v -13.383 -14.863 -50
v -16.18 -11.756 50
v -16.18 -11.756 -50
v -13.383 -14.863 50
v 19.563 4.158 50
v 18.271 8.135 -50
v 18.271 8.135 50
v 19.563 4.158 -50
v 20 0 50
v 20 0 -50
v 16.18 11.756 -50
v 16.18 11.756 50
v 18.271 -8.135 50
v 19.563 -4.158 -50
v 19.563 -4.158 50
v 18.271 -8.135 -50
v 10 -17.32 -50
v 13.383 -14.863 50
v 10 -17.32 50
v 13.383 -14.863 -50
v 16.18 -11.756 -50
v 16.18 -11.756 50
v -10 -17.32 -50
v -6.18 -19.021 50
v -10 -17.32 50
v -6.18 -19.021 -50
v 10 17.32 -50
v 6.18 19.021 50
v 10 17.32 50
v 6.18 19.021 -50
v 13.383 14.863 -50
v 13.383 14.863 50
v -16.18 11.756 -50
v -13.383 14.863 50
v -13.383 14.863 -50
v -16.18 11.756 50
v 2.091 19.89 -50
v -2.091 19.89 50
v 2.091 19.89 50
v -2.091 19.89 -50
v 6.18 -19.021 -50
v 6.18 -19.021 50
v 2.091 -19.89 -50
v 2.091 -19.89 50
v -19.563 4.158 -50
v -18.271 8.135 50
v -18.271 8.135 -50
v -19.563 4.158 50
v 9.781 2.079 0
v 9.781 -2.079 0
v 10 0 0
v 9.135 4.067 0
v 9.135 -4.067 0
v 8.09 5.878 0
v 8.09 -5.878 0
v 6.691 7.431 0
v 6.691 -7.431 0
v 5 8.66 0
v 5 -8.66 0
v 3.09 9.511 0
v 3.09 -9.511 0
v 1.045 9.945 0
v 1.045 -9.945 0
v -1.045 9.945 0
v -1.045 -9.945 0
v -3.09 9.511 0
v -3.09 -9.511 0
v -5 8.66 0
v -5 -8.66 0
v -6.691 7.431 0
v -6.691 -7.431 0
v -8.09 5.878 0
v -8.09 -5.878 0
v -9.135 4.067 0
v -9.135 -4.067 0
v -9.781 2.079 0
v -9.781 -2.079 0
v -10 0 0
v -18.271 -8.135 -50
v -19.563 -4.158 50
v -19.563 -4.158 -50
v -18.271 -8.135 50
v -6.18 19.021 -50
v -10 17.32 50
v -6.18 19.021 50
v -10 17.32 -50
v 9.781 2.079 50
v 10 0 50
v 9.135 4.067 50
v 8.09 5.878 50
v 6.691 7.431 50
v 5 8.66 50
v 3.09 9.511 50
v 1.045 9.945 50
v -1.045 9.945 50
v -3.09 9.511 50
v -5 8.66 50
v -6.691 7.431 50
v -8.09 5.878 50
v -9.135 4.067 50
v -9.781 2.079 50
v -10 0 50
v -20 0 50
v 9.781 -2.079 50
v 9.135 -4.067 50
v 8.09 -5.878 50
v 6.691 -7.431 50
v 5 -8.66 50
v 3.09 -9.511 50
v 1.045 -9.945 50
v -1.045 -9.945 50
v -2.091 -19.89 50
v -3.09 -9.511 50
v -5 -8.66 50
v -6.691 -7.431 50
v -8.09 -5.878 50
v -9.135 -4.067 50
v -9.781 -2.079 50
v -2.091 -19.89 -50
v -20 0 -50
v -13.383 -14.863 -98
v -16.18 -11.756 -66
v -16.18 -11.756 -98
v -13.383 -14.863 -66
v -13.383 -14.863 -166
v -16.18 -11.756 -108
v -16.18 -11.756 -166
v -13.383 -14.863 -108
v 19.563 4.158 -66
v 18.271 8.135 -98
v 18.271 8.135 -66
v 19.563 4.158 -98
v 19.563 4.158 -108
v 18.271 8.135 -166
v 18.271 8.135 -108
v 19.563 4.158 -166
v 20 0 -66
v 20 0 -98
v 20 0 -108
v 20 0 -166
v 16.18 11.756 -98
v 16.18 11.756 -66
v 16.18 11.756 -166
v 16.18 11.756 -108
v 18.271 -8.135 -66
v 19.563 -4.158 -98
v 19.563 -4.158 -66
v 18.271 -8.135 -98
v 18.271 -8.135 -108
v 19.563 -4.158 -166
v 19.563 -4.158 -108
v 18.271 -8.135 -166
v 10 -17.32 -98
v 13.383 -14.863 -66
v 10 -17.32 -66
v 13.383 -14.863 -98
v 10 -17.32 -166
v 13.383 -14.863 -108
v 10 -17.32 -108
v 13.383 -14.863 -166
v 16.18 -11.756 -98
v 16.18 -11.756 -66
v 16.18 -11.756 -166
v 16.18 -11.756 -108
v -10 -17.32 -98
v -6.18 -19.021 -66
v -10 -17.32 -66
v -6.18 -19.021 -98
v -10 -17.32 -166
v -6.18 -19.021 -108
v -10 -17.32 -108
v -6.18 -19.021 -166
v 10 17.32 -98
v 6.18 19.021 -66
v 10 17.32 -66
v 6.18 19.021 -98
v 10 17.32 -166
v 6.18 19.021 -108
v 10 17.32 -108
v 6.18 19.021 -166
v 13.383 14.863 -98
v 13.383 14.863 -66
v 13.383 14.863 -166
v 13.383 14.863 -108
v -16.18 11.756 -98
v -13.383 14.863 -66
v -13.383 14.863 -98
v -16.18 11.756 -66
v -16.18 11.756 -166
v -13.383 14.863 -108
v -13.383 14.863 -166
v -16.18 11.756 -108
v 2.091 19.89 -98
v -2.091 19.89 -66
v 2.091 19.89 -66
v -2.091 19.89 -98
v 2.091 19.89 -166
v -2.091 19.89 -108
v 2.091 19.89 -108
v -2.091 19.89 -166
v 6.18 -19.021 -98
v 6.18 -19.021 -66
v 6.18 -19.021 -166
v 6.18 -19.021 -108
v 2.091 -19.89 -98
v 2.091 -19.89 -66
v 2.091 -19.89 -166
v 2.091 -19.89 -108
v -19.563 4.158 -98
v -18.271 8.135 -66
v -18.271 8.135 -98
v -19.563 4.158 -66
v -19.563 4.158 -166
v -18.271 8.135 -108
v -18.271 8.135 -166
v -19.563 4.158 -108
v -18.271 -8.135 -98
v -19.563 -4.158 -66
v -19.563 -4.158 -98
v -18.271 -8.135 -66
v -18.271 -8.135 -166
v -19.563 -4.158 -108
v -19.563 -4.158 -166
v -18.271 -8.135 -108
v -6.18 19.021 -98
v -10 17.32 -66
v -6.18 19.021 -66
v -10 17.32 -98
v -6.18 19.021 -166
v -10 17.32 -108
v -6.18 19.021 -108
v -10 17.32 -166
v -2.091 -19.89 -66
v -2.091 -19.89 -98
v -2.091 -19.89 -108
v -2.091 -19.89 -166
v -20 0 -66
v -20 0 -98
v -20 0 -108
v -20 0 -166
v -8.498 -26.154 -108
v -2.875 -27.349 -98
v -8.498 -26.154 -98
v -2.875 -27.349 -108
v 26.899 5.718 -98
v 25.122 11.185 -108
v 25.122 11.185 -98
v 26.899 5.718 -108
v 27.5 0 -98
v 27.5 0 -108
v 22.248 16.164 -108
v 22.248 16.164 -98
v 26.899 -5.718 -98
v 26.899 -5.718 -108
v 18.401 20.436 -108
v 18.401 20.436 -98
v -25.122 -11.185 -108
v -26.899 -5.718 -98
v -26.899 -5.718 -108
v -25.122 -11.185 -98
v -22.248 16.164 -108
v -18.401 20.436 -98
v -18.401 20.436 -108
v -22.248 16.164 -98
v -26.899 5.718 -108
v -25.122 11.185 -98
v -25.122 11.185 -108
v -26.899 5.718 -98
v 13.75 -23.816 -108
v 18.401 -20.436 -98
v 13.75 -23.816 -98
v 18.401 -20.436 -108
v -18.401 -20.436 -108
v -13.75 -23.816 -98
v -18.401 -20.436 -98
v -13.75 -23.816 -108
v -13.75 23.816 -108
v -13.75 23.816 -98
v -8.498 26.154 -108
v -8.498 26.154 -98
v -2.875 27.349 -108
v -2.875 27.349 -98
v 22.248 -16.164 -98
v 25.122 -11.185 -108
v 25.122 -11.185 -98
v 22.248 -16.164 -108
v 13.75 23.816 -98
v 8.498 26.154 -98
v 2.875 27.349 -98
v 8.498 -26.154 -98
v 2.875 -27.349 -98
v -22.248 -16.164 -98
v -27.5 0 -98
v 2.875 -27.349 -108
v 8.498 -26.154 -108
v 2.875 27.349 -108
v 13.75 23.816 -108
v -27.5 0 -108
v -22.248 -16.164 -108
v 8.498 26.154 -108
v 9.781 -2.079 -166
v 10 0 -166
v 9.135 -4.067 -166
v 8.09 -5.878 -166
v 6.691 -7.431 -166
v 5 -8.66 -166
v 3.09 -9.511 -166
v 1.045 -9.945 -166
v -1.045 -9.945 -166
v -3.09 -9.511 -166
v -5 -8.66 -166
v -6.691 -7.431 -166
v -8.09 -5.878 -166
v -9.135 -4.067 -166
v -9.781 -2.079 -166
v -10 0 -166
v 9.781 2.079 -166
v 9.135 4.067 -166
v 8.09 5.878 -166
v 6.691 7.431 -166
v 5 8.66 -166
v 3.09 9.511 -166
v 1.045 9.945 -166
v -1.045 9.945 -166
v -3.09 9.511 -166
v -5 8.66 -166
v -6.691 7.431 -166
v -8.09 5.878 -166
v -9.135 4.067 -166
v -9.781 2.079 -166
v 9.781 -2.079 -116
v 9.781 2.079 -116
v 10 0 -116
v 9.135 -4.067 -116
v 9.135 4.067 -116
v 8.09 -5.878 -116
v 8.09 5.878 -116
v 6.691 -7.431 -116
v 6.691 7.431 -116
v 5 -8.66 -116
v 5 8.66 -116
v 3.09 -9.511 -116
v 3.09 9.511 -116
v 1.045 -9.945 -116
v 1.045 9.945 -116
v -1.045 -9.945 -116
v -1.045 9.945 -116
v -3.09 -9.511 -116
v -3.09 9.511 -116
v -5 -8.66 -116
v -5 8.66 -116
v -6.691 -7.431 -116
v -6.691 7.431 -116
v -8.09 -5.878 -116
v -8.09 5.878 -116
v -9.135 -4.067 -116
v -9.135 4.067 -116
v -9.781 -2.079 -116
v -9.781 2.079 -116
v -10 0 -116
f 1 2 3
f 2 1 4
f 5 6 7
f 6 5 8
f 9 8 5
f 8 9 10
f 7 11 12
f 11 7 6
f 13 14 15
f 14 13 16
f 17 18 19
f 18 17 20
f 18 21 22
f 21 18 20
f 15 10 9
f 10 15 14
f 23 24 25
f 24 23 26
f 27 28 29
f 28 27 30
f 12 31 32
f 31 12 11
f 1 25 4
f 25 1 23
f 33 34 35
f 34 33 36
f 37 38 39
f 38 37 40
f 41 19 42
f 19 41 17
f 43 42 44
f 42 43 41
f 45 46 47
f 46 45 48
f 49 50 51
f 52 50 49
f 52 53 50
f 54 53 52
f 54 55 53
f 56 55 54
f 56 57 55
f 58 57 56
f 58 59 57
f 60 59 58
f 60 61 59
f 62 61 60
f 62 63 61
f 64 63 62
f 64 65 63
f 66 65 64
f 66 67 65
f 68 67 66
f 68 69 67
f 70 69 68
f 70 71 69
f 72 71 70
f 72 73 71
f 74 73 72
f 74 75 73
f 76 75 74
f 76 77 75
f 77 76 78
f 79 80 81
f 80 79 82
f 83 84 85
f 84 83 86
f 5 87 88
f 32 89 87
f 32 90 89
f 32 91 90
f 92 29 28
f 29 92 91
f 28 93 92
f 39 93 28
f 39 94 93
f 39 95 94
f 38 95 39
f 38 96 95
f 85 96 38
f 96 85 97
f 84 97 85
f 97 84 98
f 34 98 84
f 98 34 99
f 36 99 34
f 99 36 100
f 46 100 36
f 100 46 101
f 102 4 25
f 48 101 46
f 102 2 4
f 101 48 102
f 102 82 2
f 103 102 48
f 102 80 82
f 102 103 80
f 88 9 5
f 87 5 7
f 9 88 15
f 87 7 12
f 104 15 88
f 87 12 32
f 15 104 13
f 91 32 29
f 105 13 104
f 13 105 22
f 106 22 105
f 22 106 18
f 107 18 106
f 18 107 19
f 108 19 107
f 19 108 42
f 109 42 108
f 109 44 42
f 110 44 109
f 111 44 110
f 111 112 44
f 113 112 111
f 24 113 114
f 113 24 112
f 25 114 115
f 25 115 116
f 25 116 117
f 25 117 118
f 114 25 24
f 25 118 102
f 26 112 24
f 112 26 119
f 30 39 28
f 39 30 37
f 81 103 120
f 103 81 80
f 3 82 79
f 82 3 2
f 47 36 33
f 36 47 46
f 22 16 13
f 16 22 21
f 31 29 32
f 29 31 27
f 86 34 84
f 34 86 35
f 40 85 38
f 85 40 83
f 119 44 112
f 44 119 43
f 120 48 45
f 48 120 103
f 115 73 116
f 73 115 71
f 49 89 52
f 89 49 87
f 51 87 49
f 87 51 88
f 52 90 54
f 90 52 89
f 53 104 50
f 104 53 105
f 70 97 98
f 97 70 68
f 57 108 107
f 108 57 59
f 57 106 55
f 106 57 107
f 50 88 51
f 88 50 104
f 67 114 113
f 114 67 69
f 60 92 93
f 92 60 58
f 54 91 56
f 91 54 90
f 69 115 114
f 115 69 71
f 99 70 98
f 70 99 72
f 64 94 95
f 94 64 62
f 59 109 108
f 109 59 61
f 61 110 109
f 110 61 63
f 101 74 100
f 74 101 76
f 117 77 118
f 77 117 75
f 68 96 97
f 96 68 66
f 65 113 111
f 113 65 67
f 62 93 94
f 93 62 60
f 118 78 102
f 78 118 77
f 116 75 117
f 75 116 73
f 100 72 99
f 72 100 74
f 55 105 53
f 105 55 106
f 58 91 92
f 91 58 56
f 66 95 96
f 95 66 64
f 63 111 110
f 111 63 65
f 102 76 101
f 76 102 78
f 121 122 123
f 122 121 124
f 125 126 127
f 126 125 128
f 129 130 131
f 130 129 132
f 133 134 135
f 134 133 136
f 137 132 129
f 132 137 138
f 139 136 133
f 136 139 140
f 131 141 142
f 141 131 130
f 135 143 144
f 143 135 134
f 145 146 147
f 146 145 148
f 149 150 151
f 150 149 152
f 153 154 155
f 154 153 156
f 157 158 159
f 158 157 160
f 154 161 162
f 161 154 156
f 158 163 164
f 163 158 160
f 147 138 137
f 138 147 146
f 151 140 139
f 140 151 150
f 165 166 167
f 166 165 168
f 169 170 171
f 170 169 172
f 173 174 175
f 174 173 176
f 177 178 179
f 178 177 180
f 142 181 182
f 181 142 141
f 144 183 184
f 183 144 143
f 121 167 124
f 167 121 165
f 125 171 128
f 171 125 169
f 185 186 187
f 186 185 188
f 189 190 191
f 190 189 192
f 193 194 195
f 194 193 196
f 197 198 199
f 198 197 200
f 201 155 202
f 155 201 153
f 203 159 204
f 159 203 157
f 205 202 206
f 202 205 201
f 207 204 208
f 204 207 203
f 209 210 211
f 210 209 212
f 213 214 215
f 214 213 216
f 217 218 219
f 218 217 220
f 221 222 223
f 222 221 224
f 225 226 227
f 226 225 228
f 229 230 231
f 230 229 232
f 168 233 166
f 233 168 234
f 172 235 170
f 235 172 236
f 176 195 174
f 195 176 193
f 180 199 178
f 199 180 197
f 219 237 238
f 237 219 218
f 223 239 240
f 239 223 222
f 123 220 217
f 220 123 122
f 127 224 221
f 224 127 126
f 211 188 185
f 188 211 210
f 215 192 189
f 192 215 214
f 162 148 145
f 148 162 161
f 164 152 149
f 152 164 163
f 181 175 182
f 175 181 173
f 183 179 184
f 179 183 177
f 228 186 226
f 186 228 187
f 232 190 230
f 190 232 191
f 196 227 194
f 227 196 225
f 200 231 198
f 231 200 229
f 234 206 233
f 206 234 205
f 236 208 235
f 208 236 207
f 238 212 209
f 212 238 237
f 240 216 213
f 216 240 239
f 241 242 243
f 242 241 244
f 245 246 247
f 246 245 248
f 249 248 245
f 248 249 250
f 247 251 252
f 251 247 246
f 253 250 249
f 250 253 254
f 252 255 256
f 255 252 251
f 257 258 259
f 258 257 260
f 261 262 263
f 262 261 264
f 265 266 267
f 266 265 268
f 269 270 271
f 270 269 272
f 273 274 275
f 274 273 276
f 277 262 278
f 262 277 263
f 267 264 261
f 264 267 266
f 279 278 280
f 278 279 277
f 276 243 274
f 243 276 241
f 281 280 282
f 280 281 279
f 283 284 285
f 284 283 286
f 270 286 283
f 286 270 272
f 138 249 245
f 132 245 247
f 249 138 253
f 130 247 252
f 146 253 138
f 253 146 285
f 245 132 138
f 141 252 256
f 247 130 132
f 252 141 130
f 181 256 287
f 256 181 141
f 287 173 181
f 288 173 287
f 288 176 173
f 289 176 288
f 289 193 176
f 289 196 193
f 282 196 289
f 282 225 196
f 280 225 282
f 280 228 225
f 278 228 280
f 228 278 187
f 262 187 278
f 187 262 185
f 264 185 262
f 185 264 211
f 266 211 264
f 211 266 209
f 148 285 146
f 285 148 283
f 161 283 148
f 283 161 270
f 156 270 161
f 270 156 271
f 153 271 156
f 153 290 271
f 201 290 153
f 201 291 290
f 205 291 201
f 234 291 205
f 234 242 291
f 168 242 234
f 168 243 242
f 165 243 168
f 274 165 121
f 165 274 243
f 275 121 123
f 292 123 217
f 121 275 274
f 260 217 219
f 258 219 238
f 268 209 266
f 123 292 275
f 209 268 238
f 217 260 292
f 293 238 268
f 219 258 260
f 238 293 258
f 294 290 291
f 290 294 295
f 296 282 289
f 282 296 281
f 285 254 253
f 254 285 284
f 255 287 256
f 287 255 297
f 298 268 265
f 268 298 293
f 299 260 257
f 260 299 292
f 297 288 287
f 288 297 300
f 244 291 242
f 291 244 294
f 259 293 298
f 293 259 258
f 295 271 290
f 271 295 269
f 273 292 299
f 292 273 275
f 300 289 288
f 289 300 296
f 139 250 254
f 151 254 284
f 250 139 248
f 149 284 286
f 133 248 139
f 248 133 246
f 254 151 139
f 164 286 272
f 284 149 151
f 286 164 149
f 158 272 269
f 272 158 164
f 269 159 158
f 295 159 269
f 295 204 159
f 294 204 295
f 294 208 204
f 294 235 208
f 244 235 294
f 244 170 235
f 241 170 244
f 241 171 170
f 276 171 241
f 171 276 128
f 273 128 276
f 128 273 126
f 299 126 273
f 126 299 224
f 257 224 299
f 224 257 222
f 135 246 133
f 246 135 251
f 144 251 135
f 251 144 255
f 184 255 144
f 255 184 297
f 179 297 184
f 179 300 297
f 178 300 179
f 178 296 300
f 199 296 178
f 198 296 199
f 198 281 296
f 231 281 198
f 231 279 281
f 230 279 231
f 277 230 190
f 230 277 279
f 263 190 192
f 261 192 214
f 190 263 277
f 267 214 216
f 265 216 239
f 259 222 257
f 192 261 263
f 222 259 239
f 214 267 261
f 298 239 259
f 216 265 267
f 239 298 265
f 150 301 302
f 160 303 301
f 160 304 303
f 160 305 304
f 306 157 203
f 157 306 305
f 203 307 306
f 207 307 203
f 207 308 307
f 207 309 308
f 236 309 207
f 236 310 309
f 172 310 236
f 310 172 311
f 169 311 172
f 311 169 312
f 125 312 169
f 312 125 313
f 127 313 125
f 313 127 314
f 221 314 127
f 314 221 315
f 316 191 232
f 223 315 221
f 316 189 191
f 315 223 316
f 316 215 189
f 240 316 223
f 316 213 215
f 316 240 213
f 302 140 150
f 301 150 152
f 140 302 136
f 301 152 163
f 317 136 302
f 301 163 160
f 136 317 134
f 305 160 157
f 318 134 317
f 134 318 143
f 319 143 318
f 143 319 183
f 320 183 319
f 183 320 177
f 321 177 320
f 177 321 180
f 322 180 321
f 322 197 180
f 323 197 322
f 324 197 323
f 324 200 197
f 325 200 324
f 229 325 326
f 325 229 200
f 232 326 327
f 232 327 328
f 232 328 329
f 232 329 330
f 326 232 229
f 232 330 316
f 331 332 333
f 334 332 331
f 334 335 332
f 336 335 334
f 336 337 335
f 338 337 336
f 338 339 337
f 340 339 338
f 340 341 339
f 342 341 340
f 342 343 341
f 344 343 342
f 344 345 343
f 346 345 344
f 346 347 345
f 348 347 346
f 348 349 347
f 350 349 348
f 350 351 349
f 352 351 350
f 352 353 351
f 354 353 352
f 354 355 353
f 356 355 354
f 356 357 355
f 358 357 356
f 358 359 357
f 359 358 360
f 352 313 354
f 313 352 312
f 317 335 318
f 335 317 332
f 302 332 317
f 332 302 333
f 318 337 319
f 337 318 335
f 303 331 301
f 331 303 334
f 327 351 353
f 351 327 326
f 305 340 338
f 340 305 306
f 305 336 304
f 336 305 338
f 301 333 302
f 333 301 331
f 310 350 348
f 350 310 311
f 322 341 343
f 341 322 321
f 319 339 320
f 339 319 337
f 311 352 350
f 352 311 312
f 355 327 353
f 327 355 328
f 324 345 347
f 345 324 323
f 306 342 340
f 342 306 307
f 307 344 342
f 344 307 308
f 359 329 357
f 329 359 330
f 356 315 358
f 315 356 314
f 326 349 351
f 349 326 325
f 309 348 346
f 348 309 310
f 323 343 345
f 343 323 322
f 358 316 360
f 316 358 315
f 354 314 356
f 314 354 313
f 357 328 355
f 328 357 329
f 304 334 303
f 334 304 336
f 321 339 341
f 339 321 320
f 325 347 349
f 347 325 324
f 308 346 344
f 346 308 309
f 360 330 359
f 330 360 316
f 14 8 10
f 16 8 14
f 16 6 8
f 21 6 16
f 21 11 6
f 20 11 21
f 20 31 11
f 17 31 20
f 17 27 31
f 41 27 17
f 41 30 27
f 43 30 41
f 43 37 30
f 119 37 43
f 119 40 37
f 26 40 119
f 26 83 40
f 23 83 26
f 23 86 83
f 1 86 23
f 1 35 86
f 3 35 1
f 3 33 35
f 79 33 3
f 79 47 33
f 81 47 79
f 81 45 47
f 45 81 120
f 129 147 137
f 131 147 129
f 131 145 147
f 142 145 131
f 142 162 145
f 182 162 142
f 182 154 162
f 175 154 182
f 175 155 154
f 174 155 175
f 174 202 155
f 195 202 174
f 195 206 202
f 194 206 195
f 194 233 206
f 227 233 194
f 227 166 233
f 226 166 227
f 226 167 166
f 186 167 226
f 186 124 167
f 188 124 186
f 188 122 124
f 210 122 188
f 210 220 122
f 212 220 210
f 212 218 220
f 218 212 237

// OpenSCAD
// Define parameters for components
hollow_cylindrical_body_diameter = 40;
hollow_cylindrical_body_height = 50;
hollow_cylindrical_body_inner_diameter = 20;

solid_cylindrical_body_diameter = 40;
solid_cylindrical_body_height = 50;

spacer_ring_outer_diameter = 40;
spacer_ring_inner_diameter = 30;
spacer_ring_thickness = 3; // Reduced thickness to match original model

flange_plate_outer_diameter = 55; // Increased outer diameter to match original model
flange_plate_inner_diameter = 30;
flange_plate_thickness = 5;

bolt_diameter = 5;
bolt_length = 70; // Extended length to match original model

nut_diameter = 10;
nut_thickness = 5;

// Hollow cylindrical body
module hollow_cylindrical_body() {
    difference() {
        cylinder(h = hollow_cylindrical_body_height, d = hollow_cylindrical_body_diameter);
        translate([0, 0, -1]) // Ensure inner cavity runs through
            cylinder(h = hollow_cylindrical_body_height + 2, d = hollow_cylindrical_body_inner_diameter);
    }
}

// Solid cylindrical body
module solid_cylindrical_body() {
    cylinder(h = solid_cylindrical_body_height, d = solid_cylindrical_body_diameter);
}

// Spacer ring
module spacer_ring() {
    difference() {
        cylinder(h = spacer_ring_thickness, d = spacer_ring_outer_diameter);
        translate([0, 0, -1]) // Ensure hollow center
            cylinder(h = spacer_ring_thickness + 2, d = spacer_ring_inner_diameter);
    }
}

// Flange plate
module flange_plate() {
    difference() {
        cylinder(h = flange_plate_thickness, d = flange_plate_outer_diameter);
        translate([0, 0, -1]) // Ensure hollow center
            cylinder(h = flange_plate_thickness + 2, d = flange_plate_inner_diameter);
    }
}

// Bolt
module bolt() {
    cylinder(h = bolt_length, d = bolt_diameter);
}

// Nut
module nut() {
    difference() {
        cylinder(h = nut_thickness, d = nut_diameter);
        translate([0, 0, -1]) // Ensure threaded cavity
            cylinder(h = nut_thickness + 2, d = bolt_diameter);
    }
}

// Assemble the model
translate([0, 0, 0]) hollow_cylindrical_body(); // Layer 1
translate([0, 0, -hollow_cylindrical_body_height]) solid_cylindrical_body(); // Layer 2
translate([0, 0, -hollow_cylindrical_body_height - solid_cylindrical_body_height]) spacer_ring(); // Layer 3
translate([0, 0, -hollow_cylindrical_body_height - solid_cylindrical_body_height - spacer_ring_thickness]) flange_plate(); // Layer 4
translate([0, 0, -hollow_cylindrical_body_height - solid_cylindrical_body_height - spacer_ring_thickness - flange_plate_thickness]) flange_plate(); // Layer 5
translate([0, 0, -hollow_cylindrical_body_height - solid_cylindrical_body_height - spacer_ring_thickness - flange_plate_thickness * 2]) spacer_ring(); // Layer 6
translate([0, 0, -hollow_cylindrical_body_height - solid_cylindrical_body_height - spacer_ring_thickness - flange_plate_thickness * 2 - spacer_ring_thickness]) solid_cylindrical_body(); // Layer 7
translate([0, 0, -hollow_cylindrical_body_height - solid_cylindrical_body_height - spacer_ring_thickness - flange_plate_thickness * 2 - spacer_ring_thickness - solid_cylindrical_body_height]) hollow_cylindrical_body(); // Layer 8
